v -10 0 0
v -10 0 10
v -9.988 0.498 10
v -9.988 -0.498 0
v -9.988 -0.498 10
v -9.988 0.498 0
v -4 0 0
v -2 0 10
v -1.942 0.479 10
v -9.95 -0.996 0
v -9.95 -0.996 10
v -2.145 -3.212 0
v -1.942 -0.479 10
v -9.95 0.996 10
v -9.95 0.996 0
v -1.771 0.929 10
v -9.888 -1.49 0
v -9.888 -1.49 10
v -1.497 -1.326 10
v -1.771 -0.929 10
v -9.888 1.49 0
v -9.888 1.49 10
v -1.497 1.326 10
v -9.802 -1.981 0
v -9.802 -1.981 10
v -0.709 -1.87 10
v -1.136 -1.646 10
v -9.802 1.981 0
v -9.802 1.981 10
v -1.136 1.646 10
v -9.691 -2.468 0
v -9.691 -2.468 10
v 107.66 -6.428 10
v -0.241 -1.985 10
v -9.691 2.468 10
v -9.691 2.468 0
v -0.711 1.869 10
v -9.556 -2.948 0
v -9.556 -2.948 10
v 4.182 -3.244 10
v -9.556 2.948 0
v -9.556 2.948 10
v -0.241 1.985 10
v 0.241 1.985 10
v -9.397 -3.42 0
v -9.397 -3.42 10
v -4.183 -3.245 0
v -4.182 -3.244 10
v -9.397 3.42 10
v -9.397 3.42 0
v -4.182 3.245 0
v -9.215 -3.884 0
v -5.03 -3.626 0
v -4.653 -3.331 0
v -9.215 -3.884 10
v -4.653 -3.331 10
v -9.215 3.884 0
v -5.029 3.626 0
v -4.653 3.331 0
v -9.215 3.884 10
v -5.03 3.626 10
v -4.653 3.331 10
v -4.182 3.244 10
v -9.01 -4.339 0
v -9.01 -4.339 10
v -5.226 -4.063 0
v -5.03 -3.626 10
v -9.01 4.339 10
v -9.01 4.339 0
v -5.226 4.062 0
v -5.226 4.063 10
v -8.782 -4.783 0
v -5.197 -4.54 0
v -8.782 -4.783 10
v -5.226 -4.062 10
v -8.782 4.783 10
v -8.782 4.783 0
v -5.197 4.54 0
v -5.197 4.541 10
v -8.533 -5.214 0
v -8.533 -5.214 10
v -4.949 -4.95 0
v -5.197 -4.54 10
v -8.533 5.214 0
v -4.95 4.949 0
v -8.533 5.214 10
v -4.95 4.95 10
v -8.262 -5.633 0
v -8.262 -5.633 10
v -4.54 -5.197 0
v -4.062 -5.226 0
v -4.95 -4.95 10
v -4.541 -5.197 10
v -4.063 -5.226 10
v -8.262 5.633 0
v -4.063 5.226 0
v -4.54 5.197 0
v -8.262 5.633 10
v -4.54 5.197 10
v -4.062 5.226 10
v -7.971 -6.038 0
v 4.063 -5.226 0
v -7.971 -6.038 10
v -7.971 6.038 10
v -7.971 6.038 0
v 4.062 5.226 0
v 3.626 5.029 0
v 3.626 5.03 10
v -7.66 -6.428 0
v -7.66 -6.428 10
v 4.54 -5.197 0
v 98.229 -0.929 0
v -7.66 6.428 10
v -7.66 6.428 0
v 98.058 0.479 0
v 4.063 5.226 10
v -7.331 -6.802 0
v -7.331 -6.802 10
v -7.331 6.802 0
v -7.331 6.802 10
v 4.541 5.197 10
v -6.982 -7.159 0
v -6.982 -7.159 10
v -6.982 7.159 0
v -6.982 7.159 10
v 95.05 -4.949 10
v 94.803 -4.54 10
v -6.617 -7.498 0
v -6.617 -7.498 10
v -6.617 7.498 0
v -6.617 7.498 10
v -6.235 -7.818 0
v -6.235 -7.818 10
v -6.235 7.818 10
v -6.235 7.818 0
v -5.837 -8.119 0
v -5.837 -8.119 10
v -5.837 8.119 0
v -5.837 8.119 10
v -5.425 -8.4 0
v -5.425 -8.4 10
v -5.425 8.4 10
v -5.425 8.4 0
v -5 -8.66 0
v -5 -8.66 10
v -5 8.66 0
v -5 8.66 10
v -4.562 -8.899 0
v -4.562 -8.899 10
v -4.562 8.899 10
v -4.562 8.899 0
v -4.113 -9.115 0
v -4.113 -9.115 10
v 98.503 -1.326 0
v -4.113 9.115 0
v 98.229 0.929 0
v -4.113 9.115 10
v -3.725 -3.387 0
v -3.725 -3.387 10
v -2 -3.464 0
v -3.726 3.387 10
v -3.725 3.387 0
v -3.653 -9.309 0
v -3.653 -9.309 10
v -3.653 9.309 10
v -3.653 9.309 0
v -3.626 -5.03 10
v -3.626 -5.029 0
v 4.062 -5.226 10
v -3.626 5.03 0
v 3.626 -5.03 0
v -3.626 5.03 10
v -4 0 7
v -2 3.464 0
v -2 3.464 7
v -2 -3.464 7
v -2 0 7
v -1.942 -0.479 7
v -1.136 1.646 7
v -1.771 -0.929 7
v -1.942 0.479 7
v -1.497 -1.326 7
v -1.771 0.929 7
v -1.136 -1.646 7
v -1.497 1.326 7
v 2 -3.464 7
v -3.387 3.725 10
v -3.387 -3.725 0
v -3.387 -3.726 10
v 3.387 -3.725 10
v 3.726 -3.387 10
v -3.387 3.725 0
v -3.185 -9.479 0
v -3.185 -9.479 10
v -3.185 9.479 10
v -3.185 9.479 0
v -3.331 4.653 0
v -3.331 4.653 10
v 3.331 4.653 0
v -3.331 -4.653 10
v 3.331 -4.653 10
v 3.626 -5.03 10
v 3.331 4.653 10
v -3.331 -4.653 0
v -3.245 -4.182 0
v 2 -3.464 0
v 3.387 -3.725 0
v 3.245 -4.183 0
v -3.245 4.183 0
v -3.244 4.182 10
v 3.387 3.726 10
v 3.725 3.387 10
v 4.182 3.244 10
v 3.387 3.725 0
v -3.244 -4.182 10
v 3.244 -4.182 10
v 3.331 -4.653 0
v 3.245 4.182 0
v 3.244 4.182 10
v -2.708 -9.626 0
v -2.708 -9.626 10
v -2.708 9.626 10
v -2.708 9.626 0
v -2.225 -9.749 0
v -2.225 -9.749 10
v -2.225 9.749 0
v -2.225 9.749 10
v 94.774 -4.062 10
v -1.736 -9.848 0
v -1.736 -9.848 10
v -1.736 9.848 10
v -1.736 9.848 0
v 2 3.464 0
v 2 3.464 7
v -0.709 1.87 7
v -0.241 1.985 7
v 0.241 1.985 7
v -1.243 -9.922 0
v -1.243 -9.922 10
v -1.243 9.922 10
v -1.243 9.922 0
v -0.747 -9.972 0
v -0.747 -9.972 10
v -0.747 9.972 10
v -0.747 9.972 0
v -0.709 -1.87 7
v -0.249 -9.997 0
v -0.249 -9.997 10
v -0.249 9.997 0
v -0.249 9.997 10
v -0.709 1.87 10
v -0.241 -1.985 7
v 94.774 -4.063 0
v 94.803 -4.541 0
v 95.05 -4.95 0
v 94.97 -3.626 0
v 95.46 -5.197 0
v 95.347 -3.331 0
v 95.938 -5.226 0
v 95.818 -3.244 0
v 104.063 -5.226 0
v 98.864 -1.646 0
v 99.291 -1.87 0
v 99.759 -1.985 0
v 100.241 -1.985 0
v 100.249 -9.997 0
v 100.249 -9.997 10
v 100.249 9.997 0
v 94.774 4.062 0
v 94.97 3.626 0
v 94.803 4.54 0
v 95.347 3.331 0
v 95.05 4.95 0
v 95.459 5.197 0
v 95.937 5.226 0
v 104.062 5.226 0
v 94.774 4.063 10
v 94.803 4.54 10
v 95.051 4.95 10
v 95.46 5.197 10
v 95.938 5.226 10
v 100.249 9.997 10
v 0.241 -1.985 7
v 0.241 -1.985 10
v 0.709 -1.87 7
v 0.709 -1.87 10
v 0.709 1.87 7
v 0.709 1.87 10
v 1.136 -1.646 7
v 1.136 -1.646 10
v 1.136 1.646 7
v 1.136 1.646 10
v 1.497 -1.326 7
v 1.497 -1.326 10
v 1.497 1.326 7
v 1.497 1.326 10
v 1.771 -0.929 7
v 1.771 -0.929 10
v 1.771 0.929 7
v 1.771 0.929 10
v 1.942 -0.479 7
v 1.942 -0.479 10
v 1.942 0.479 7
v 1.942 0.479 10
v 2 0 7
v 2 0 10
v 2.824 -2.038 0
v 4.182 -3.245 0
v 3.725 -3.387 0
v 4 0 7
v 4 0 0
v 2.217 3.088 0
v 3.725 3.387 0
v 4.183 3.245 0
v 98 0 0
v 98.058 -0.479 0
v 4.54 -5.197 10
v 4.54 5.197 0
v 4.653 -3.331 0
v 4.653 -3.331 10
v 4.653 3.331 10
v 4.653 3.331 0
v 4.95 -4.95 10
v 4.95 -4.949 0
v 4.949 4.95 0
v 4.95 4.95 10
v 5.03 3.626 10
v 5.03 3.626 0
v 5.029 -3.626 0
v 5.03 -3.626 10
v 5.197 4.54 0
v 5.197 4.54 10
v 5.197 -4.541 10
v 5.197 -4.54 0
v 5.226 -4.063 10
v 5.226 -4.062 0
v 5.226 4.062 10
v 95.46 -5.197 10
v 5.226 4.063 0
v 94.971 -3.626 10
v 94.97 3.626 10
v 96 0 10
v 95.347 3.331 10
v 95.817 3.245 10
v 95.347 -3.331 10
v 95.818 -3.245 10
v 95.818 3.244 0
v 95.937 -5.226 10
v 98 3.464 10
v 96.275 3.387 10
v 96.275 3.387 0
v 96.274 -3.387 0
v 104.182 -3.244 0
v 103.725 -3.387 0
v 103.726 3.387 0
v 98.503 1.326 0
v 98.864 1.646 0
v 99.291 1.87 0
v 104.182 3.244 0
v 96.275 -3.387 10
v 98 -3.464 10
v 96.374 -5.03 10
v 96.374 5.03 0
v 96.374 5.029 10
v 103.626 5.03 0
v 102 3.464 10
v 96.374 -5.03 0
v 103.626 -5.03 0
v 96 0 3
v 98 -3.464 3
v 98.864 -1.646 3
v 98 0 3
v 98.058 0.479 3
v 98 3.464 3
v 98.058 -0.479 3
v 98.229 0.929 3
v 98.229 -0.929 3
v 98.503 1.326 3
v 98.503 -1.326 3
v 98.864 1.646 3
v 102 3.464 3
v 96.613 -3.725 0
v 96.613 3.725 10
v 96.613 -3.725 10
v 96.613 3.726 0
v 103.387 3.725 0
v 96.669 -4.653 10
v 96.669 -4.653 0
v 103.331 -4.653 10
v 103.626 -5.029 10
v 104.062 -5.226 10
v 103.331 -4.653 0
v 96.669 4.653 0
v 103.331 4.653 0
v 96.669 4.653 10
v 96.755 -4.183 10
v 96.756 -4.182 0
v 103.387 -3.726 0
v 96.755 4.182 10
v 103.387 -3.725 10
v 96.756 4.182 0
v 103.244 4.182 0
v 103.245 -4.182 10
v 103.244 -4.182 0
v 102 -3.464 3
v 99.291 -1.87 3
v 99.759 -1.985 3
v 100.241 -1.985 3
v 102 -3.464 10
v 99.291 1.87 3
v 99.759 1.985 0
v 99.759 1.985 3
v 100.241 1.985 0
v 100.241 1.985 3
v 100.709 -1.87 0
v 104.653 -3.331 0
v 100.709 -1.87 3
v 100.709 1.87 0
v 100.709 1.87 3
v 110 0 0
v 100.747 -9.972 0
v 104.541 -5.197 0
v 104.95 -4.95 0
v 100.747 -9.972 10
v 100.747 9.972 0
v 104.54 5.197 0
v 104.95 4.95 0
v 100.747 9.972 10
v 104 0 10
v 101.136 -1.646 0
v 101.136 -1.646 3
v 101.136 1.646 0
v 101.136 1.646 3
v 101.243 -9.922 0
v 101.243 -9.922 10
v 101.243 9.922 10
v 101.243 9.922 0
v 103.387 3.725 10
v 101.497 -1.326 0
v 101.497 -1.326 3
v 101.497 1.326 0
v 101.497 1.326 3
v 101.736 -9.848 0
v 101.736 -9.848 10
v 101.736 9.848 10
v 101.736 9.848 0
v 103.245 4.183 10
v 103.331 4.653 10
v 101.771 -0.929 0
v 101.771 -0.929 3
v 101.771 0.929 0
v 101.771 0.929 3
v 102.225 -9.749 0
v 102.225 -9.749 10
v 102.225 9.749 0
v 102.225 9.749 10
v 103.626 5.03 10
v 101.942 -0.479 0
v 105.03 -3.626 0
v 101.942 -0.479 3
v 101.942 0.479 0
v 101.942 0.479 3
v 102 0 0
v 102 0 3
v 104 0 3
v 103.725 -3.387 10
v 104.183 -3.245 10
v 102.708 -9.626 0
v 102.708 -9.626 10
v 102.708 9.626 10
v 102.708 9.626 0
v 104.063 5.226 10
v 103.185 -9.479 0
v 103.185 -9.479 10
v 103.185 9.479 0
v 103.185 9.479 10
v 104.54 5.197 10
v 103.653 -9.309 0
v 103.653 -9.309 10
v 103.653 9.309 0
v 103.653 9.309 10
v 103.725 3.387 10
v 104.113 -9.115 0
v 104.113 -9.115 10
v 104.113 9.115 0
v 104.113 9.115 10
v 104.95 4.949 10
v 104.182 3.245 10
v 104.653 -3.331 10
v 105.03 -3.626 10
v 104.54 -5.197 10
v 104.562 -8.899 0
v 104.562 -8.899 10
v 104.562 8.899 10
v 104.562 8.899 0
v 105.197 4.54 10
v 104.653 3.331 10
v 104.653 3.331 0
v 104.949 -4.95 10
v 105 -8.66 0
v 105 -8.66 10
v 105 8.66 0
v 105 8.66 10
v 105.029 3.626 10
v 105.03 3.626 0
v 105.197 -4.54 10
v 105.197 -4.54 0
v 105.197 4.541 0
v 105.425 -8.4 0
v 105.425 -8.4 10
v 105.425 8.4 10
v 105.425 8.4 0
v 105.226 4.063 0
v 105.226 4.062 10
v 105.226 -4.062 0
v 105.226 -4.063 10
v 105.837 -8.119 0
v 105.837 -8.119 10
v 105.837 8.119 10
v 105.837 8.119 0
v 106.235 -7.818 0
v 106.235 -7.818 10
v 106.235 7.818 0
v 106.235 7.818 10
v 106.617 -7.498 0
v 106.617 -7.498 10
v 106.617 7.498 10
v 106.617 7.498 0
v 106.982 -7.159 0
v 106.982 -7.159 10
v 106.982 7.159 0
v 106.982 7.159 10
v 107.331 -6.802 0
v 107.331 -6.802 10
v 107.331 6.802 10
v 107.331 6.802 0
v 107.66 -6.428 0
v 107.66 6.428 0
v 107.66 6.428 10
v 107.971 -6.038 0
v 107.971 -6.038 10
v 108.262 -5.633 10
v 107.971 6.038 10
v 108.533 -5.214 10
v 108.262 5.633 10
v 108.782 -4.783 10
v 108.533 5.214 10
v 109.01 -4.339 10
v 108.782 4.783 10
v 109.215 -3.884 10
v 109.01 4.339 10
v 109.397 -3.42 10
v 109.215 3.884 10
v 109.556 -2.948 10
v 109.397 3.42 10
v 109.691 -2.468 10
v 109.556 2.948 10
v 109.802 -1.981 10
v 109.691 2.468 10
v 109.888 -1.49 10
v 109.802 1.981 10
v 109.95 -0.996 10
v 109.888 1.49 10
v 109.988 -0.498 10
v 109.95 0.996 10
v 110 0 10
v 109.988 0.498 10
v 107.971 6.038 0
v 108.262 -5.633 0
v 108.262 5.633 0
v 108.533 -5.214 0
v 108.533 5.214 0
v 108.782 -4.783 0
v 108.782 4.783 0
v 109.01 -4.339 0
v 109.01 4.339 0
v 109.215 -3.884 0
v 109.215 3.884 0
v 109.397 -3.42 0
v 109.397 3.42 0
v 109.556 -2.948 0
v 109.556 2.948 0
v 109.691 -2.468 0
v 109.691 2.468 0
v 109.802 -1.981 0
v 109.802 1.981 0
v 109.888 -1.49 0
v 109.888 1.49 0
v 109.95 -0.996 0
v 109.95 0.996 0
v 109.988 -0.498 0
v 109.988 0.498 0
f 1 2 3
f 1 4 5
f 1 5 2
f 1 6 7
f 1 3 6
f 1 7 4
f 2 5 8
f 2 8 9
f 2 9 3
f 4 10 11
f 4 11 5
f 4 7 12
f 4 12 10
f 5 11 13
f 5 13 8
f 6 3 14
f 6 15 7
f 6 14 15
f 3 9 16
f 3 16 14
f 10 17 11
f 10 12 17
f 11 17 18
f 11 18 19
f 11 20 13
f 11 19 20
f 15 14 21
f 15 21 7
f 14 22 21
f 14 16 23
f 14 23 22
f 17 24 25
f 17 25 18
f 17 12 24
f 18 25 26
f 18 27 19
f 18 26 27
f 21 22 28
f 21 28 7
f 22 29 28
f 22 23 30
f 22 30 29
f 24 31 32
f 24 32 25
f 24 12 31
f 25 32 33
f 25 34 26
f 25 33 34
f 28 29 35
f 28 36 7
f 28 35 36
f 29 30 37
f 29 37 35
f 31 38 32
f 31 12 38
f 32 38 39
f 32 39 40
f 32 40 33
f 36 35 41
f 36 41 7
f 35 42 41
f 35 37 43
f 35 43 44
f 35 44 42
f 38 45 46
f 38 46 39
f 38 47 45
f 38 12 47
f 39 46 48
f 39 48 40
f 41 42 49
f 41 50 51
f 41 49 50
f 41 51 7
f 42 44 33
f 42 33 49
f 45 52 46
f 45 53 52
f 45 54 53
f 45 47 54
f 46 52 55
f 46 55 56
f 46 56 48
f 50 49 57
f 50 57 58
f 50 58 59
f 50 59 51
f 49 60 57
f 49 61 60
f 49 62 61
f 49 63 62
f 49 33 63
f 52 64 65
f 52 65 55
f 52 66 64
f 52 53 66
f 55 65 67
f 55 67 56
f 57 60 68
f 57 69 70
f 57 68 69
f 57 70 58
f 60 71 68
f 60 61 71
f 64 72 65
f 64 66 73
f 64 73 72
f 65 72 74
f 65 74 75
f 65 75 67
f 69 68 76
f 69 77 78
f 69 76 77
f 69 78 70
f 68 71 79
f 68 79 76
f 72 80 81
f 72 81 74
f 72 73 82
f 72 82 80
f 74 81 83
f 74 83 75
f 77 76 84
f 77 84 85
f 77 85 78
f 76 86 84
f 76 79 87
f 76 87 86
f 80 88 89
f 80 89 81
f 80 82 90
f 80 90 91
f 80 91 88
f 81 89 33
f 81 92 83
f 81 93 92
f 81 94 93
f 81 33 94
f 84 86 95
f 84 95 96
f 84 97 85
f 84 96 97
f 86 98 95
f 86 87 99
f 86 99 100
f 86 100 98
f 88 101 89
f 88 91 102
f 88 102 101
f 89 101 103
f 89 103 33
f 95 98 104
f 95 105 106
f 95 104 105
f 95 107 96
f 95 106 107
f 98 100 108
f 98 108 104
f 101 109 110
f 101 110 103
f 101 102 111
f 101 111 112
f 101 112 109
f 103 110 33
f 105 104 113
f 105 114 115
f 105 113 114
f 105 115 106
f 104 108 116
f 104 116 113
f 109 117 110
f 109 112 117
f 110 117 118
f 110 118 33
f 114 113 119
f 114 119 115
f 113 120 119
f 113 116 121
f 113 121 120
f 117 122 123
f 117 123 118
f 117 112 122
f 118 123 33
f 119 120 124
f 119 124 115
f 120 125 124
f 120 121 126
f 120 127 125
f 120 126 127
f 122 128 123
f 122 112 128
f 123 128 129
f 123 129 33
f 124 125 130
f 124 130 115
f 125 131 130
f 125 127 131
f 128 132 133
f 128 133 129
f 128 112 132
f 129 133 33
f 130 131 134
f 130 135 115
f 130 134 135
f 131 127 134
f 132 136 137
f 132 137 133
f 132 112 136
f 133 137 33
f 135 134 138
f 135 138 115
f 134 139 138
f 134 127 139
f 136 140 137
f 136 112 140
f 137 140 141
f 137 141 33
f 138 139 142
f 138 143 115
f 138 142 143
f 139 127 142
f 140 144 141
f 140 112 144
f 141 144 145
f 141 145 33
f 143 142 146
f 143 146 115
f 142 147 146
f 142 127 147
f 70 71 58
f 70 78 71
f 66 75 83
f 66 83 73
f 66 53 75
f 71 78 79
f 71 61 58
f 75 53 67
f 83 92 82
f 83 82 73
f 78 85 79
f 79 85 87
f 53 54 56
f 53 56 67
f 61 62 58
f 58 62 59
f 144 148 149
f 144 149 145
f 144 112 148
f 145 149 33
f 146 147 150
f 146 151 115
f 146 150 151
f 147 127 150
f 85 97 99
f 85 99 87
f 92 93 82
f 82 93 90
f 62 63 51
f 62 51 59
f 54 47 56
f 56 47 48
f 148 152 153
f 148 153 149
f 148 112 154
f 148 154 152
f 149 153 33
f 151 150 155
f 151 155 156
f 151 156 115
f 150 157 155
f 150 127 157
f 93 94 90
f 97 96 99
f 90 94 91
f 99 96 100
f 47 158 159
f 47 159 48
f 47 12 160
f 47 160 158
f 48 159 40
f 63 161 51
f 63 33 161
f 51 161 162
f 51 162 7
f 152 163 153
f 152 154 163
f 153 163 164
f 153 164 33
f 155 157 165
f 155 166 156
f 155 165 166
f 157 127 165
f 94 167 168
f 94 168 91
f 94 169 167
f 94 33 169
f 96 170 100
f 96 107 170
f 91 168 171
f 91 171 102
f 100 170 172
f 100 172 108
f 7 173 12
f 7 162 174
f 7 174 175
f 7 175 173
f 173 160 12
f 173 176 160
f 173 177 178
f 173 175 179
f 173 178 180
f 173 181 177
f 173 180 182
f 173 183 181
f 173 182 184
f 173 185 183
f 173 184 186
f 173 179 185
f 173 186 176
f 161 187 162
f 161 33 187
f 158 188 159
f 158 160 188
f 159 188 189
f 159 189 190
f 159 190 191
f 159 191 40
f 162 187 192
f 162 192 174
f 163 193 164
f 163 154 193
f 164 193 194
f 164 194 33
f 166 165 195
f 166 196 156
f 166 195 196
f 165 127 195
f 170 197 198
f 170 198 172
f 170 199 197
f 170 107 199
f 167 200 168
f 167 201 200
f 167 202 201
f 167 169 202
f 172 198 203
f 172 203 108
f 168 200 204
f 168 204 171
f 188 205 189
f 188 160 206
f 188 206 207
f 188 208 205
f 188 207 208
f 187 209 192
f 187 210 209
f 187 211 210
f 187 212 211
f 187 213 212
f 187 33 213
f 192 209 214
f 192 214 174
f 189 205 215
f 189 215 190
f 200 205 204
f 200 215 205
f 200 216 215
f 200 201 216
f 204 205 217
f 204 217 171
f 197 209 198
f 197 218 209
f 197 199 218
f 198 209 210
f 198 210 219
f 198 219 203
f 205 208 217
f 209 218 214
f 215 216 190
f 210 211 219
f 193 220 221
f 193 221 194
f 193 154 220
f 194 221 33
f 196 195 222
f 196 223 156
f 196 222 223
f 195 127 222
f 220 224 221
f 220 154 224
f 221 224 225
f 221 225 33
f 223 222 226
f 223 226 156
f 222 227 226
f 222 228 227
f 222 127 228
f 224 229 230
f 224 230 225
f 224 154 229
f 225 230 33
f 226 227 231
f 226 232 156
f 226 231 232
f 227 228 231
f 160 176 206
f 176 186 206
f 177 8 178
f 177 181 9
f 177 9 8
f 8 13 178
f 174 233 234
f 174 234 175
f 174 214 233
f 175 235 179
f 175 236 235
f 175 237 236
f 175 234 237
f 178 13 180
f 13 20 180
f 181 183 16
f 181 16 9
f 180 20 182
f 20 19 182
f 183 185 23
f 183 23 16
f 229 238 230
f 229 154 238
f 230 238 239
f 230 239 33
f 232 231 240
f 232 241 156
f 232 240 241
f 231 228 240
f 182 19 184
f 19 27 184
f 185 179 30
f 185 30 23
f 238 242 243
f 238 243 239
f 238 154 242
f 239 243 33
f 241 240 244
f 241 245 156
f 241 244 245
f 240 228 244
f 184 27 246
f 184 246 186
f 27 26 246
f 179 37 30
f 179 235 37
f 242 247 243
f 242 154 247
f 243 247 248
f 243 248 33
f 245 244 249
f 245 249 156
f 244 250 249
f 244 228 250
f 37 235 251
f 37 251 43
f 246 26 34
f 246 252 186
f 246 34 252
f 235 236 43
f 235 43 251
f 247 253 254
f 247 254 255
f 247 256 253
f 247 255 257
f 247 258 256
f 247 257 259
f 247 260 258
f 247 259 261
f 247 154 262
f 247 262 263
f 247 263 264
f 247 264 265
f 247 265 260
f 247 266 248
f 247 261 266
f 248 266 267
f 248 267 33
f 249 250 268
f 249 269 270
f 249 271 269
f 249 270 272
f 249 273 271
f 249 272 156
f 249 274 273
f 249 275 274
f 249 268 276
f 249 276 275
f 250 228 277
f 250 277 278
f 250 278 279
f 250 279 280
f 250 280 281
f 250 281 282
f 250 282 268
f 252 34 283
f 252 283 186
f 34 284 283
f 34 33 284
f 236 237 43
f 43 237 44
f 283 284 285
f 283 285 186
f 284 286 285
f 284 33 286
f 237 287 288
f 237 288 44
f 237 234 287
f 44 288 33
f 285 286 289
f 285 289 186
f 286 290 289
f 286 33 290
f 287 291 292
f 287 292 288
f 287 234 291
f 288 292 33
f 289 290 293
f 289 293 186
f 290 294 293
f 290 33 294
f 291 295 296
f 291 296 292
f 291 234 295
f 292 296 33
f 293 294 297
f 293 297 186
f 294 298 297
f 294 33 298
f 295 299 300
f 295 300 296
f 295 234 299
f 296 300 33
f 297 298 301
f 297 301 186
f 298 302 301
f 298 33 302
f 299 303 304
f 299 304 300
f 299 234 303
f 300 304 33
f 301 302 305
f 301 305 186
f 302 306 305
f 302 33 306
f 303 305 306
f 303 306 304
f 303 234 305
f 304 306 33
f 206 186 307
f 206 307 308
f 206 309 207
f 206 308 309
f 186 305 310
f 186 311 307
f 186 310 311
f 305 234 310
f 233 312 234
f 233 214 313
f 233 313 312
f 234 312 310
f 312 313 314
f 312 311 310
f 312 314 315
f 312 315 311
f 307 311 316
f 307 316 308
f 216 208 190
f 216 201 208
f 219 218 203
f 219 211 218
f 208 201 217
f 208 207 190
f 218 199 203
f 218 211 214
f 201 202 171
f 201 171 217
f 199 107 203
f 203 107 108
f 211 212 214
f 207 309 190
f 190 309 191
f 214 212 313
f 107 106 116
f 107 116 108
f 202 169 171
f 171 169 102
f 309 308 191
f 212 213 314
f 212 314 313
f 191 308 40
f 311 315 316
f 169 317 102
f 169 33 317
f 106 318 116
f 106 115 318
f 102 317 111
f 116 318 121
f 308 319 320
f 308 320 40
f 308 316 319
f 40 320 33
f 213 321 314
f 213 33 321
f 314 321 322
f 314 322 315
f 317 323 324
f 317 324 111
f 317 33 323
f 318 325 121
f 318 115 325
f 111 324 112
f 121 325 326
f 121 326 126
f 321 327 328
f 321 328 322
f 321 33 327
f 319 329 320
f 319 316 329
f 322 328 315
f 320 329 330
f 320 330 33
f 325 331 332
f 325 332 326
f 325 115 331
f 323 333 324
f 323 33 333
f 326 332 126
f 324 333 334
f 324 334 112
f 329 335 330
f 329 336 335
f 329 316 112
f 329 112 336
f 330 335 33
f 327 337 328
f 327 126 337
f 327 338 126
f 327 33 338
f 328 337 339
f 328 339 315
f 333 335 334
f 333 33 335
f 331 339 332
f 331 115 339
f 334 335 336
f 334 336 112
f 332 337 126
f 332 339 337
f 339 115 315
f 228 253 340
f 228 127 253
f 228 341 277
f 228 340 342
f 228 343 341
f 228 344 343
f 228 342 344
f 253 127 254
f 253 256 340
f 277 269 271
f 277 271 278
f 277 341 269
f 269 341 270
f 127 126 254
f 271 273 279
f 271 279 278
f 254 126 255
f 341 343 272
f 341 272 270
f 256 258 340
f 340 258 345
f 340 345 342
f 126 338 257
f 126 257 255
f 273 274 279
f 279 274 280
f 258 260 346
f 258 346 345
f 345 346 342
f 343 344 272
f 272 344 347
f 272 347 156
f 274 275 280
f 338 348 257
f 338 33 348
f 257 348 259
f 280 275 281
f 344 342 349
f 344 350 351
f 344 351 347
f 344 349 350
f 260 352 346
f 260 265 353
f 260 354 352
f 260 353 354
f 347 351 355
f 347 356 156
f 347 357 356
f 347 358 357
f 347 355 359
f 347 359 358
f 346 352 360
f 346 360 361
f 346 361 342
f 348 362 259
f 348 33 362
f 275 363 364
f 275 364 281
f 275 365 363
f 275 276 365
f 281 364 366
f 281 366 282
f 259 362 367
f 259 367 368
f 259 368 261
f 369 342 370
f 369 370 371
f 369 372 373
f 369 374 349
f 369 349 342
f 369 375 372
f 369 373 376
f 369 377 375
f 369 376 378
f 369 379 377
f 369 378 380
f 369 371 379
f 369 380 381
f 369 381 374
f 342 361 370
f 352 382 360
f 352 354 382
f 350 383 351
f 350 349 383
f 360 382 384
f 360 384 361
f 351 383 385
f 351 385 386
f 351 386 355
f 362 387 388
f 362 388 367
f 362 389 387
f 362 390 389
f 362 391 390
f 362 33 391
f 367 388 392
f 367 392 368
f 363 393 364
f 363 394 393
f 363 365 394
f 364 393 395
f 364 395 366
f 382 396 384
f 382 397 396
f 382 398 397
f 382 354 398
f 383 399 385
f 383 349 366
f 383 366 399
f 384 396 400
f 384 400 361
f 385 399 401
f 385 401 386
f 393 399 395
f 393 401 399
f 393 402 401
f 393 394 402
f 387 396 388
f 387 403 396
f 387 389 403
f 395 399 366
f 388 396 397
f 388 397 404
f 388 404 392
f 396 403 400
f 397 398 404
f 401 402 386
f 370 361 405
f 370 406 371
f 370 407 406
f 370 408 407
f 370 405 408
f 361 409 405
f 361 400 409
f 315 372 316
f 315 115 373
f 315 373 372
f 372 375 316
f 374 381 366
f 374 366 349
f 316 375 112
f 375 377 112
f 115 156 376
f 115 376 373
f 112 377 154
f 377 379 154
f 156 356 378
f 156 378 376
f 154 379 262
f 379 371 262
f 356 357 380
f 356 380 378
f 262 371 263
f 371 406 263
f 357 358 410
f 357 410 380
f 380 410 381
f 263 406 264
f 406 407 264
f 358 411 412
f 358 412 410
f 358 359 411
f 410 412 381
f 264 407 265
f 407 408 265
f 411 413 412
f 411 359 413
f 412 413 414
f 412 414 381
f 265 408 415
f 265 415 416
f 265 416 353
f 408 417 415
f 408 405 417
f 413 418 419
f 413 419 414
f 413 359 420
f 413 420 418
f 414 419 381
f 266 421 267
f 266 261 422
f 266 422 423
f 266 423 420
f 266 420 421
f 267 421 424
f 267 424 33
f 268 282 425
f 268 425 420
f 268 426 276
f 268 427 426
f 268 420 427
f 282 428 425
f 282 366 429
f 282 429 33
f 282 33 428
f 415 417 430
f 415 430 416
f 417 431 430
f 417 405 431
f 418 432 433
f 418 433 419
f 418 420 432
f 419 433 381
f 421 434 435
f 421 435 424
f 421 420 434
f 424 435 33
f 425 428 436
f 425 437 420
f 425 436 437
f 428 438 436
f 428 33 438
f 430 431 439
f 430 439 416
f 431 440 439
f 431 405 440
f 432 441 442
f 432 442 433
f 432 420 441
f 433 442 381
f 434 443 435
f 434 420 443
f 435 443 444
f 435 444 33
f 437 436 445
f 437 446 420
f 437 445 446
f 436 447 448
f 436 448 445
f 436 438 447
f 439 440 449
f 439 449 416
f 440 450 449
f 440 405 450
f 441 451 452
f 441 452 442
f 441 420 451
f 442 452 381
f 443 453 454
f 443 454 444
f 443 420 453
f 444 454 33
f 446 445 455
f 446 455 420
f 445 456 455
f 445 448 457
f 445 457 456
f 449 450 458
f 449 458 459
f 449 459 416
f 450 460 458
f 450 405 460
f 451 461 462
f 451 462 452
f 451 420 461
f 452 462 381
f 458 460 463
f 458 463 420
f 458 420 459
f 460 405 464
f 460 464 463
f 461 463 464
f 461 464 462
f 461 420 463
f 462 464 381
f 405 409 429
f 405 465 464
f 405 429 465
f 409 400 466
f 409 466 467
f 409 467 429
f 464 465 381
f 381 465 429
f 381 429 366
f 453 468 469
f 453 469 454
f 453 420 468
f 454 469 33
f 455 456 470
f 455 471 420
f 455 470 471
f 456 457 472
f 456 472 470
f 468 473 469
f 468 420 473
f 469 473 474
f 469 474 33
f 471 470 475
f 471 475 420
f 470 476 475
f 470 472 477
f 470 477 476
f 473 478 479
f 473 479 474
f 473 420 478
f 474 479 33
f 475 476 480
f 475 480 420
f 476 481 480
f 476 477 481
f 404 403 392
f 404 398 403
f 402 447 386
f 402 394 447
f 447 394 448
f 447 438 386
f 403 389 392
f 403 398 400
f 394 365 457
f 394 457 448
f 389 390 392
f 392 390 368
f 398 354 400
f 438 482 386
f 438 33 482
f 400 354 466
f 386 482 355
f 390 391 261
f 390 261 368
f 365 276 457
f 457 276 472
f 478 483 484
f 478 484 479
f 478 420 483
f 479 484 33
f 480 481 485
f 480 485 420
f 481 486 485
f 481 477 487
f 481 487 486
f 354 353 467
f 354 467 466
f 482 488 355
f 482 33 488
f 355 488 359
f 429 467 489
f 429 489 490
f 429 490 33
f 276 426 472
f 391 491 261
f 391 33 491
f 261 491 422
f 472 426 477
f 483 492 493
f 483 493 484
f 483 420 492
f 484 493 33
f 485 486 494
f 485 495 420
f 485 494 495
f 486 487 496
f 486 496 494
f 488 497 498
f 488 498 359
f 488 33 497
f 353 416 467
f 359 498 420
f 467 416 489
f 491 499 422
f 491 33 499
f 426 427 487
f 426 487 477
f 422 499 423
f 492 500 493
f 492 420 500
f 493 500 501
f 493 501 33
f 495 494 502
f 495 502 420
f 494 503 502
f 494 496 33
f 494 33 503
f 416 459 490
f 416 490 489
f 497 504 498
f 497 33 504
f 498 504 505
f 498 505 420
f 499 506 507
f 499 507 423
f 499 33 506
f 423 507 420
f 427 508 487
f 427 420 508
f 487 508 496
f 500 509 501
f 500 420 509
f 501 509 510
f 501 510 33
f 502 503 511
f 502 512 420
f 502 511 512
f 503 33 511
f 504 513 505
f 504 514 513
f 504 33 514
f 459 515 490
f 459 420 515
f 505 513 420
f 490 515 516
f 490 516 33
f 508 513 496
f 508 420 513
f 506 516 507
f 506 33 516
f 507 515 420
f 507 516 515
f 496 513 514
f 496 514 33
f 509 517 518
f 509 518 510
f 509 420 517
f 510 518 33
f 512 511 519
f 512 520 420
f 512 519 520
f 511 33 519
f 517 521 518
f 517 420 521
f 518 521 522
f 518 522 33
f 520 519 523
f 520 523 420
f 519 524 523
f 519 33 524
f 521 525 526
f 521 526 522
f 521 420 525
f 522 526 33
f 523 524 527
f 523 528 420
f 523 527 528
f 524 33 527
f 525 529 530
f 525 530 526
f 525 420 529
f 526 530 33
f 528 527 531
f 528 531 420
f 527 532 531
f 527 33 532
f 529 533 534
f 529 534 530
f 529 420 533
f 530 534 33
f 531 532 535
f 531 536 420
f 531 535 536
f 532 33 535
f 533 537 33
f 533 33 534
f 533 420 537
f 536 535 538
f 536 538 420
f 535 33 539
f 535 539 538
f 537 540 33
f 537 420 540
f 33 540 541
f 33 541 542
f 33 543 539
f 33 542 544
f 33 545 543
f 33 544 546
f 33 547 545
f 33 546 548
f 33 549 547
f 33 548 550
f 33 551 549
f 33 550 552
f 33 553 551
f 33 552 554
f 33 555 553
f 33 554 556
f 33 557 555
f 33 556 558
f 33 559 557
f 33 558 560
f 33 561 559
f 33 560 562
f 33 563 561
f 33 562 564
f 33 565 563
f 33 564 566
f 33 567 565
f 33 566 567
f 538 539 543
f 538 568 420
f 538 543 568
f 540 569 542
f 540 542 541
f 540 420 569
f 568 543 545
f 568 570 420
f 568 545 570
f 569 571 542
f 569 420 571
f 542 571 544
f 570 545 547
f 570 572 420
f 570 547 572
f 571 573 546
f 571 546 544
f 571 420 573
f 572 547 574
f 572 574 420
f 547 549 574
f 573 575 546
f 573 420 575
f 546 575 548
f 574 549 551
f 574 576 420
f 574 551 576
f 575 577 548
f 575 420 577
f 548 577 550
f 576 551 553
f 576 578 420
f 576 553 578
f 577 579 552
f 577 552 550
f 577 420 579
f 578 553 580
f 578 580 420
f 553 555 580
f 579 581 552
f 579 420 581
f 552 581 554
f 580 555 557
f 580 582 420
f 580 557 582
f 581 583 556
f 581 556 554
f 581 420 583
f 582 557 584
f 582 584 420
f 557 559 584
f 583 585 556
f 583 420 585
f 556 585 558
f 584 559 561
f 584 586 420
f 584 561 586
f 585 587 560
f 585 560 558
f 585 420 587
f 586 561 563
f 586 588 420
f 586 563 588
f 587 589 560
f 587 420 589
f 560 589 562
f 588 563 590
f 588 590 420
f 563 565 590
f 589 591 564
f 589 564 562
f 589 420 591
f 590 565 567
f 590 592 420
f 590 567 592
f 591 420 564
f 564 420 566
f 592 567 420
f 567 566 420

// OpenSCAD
length=100;
depth=10;
wall=3;
width=20;
d_nut=8;
d_bolt=4;
bcd=12;
bd=2;
nb=4;
$fa=1/1;
$fs=1/2;
bissl=1/100;
module arm_for_rosette(length=40,depth=10,wall=3,width=20,d_nut=8,d_bolt=4,bcd=12,bd=2,nb=4,bissl=1/100) {
  difference() {
    hull() {
      rosette_holder(depth=depth,wall=wall,diameter=width,d_nut=d_nut,d_bolt=d_bolt,bcd=bcd,bd=bd,nb=nb,bissl=1/100,negative=false);
      translate([length,0,0]) rosette_holder(depth=depth,wall=wall,diameter=width,d_nut=d_nut,d_bolt=d_bolt,bcd=bcd,bd=bd,nb=nb,bissl=1/100,negative=false);
    }
      rosette_holder(depth=depth,wall=wall,diameter=width,d_nut=d_nut,d_bolt=d_bolt,bcd=bcd,bd=bd,nb=nb,bissl=1/100,negative=true);
      rotate([180,0,0])translate([length,0,-depth]) rosette_holder(depth=depth,wall=wall,diameter=width,d_nut=d_nut,d_bolt=d_bolt,bcd=bcd,bd=bd,nb=nb,bissl=1/100,negative=true);
  }
}

module rosette_holder(depth=10,wall=3,diameter=20,d_nut=8,d_bolt=4,bcd=12,bd=2,nb=4,bissl=1/100,negative=false) {
  difference() {
    if (!negative) cylinder(h=depth,d=diameter);
      union() {
        translate([0,0,-bissl]) cylinder(h=depth+2*bissl, d=d_bolt);
        for (i=[180/nb:360/nb:360]) rotate([0,0,i])translate([bcd/2,0,-bissl]) cylinder(h=depth+2*bissl,d=bd);
        translate([0,0,-depth]) cylinder(d=d_nut,h=2*depth-wall,$fn=6);
      }
  }
}
//arm_for_rosette(length=length,depth=depth,wall=wall);
arm_for_rosette(length=length,depth=depth,wall=wall,width=width,d_nut=d_nut,d_bolt=d_bolt,bcd=bcd,bd=bd,nb=nb,bissl=1/100);
